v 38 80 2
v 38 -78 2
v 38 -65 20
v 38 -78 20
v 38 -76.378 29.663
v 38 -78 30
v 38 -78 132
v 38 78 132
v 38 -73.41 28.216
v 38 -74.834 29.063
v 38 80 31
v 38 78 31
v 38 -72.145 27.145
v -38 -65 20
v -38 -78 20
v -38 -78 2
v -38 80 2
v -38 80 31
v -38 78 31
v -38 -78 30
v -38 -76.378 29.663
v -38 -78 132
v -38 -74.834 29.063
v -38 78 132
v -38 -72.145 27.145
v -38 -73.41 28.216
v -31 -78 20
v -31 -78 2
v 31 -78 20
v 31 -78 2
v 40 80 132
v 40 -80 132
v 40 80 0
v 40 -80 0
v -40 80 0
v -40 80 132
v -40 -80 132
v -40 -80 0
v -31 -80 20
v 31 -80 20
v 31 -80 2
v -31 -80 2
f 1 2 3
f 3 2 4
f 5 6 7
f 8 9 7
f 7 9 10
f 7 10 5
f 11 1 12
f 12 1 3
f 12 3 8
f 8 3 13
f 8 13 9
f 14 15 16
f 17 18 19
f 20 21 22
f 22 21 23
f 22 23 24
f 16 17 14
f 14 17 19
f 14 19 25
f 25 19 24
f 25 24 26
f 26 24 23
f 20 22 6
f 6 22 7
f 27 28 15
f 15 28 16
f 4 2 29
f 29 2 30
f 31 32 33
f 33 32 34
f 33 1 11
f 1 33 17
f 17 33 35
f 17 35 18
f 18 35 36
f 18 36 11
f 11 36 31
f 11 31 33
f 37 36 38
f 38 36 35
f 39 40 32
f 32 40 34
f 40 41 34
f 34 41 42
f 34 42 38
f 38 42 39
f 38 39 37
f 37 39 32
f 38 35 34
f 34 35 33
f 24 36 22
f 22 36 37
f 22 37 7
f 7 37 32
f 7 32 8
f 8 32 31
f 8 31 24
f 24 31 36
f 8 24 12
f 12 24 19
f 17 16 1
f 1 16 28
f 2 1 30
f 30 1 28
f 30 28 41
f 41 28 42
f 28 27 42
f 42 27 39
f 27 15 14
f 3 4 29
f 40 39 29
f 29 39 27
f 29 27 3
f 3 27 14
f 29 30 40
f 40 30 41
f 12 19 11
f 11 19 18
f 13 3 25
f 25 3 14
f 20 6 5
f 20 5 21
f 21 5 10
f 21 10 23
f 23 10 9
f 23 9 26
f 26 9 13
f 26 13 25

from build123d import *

# Parameters (mm, degrees)
SKETCH1_W           = 80
SKETCH1_H           = 160
BOSS_EXTRUDE1_DEPTH = 2
SKETCH2_W           = 80
SKETCH2_H           = 160
SKETCH2_W_2         = 76
SKETCH2_H_2         = 156
BOSS_EXTRUDE2_DEPTH = 130
SKETCH3_W           = 62
SKETCH3_H           = 18
CUT_EXTRUDE1_DEPTH  = 2
SKETCH5_W           = 76
SKETCH5_H           = 29
CUT_EXTRUDE2_DEPTH  = 2
SKETCH7_W           = 76
SKETCH7_H           = 10
BOSS_EXTRUDE3_DEPTH = 20
CHAMFER1_SIZE       = 17
FILLET1_R           = 10


with BuildPart() as part:
    # Sketch1 → Boss-Extrude1 (new body)
    with BuildSketch(Plane.XY):
        Rectangle(SKETCH1_W, SKETCH1_H)
    extrude(amount=BOSS_EXTRUDE1_DEPTH)

    # Sketch2 → Boss-Extrude2 (add)
    with BuildSketch(Plane.XY.offset(2)):
        Rectangle(SKETCH2_W, SKETCH2_H)
        Rectangle(SKETCH2_W_2, SKETCH2_H_2, mode=Mode.SUBTRACT)
    extrude(amount=BOSS_EXTRUDE2_DEPTH)

    # Sketch3 → Cut-Extrude1 (cut)
    with BuildSketch(Plane.XZ.offset(80)):
        with Locations((0, 11)):
            Rectangle(SKETCH3_W, SKETCH3_H)
    extrude(amount=-CUT_EXTRUDE1_DEPTH, mode=Mode.SUBTRACT)

    # Sketch5 → Cut-Extrude2 (cut)
    with BuildSketch(Plane(origin=(0, 80, 0), x_dir=(1, 0, 0), z_dir=(0, 1, 0))):
        with Locations((0, -16.5)):
            Rectangle(SKETCH5_W, SKETCH5_H)
    extrude(amount=-CUT_EXTRUDE2_DEPTH, mode=Mode.SUBTRACT)

    # Sketch7 → Boss-Extrude3 (add)
    with BuildSketch(Plane(origin=(0, -78, 0), x_dir=(1, 0, 0), z_dir=(0, 1, 0))):
        with Locations((0, -25)):
            Rectangle(SKETCH7_W, SKETCH7_H)
    extrude(amount=BOSS_EXTRUDE3_DEPTH)

    # Chamfer1
    # the kernel refuses this chamfer: 17 mm, written as the material it takes off along each edge
    with BuildSketch(Plane(origin=(38, -58, 30), x_dir=(0, 0.027495876610586237, -0.9996219169112966), z_dir=(-1, 0, 0))) as chamfer1_piece_1:
        Polygon((CHAMFER1_SIZE * 0.999621916911, CHAMFER1_SIZE * 0.0274958766106), (-CHAMFER1_SIZE * 0.0274958766106, CHAMFER1_SIZE * 0.999621916911), (0, 0), align=None)
    extrude(amount=76, mode=Mode.SUBTRACT)

    # Fillet1
    # the kernel refuses this fillet: 10 mm, written as the material it takes off along each edge
    with BuildSketch(Plane(origin=(38, -75, 30), x_dir=(0, -1.0, 2.265447089177998e-12), z_dir=(-1, 0, 0))) as fillet1_piece_1:
        with BuildLine():
            CenterArc((4.216391769, -9.925743854), FILLET1_R, 96.986713585, 38.013286415)
            Line((-2.854676043, -2.854676043), (0, 0))
            Line((0, 0), (3, 0))
        make_face()
    extrude(amount=76, mode=Mode.SUBTRACT)


solid = part.part
